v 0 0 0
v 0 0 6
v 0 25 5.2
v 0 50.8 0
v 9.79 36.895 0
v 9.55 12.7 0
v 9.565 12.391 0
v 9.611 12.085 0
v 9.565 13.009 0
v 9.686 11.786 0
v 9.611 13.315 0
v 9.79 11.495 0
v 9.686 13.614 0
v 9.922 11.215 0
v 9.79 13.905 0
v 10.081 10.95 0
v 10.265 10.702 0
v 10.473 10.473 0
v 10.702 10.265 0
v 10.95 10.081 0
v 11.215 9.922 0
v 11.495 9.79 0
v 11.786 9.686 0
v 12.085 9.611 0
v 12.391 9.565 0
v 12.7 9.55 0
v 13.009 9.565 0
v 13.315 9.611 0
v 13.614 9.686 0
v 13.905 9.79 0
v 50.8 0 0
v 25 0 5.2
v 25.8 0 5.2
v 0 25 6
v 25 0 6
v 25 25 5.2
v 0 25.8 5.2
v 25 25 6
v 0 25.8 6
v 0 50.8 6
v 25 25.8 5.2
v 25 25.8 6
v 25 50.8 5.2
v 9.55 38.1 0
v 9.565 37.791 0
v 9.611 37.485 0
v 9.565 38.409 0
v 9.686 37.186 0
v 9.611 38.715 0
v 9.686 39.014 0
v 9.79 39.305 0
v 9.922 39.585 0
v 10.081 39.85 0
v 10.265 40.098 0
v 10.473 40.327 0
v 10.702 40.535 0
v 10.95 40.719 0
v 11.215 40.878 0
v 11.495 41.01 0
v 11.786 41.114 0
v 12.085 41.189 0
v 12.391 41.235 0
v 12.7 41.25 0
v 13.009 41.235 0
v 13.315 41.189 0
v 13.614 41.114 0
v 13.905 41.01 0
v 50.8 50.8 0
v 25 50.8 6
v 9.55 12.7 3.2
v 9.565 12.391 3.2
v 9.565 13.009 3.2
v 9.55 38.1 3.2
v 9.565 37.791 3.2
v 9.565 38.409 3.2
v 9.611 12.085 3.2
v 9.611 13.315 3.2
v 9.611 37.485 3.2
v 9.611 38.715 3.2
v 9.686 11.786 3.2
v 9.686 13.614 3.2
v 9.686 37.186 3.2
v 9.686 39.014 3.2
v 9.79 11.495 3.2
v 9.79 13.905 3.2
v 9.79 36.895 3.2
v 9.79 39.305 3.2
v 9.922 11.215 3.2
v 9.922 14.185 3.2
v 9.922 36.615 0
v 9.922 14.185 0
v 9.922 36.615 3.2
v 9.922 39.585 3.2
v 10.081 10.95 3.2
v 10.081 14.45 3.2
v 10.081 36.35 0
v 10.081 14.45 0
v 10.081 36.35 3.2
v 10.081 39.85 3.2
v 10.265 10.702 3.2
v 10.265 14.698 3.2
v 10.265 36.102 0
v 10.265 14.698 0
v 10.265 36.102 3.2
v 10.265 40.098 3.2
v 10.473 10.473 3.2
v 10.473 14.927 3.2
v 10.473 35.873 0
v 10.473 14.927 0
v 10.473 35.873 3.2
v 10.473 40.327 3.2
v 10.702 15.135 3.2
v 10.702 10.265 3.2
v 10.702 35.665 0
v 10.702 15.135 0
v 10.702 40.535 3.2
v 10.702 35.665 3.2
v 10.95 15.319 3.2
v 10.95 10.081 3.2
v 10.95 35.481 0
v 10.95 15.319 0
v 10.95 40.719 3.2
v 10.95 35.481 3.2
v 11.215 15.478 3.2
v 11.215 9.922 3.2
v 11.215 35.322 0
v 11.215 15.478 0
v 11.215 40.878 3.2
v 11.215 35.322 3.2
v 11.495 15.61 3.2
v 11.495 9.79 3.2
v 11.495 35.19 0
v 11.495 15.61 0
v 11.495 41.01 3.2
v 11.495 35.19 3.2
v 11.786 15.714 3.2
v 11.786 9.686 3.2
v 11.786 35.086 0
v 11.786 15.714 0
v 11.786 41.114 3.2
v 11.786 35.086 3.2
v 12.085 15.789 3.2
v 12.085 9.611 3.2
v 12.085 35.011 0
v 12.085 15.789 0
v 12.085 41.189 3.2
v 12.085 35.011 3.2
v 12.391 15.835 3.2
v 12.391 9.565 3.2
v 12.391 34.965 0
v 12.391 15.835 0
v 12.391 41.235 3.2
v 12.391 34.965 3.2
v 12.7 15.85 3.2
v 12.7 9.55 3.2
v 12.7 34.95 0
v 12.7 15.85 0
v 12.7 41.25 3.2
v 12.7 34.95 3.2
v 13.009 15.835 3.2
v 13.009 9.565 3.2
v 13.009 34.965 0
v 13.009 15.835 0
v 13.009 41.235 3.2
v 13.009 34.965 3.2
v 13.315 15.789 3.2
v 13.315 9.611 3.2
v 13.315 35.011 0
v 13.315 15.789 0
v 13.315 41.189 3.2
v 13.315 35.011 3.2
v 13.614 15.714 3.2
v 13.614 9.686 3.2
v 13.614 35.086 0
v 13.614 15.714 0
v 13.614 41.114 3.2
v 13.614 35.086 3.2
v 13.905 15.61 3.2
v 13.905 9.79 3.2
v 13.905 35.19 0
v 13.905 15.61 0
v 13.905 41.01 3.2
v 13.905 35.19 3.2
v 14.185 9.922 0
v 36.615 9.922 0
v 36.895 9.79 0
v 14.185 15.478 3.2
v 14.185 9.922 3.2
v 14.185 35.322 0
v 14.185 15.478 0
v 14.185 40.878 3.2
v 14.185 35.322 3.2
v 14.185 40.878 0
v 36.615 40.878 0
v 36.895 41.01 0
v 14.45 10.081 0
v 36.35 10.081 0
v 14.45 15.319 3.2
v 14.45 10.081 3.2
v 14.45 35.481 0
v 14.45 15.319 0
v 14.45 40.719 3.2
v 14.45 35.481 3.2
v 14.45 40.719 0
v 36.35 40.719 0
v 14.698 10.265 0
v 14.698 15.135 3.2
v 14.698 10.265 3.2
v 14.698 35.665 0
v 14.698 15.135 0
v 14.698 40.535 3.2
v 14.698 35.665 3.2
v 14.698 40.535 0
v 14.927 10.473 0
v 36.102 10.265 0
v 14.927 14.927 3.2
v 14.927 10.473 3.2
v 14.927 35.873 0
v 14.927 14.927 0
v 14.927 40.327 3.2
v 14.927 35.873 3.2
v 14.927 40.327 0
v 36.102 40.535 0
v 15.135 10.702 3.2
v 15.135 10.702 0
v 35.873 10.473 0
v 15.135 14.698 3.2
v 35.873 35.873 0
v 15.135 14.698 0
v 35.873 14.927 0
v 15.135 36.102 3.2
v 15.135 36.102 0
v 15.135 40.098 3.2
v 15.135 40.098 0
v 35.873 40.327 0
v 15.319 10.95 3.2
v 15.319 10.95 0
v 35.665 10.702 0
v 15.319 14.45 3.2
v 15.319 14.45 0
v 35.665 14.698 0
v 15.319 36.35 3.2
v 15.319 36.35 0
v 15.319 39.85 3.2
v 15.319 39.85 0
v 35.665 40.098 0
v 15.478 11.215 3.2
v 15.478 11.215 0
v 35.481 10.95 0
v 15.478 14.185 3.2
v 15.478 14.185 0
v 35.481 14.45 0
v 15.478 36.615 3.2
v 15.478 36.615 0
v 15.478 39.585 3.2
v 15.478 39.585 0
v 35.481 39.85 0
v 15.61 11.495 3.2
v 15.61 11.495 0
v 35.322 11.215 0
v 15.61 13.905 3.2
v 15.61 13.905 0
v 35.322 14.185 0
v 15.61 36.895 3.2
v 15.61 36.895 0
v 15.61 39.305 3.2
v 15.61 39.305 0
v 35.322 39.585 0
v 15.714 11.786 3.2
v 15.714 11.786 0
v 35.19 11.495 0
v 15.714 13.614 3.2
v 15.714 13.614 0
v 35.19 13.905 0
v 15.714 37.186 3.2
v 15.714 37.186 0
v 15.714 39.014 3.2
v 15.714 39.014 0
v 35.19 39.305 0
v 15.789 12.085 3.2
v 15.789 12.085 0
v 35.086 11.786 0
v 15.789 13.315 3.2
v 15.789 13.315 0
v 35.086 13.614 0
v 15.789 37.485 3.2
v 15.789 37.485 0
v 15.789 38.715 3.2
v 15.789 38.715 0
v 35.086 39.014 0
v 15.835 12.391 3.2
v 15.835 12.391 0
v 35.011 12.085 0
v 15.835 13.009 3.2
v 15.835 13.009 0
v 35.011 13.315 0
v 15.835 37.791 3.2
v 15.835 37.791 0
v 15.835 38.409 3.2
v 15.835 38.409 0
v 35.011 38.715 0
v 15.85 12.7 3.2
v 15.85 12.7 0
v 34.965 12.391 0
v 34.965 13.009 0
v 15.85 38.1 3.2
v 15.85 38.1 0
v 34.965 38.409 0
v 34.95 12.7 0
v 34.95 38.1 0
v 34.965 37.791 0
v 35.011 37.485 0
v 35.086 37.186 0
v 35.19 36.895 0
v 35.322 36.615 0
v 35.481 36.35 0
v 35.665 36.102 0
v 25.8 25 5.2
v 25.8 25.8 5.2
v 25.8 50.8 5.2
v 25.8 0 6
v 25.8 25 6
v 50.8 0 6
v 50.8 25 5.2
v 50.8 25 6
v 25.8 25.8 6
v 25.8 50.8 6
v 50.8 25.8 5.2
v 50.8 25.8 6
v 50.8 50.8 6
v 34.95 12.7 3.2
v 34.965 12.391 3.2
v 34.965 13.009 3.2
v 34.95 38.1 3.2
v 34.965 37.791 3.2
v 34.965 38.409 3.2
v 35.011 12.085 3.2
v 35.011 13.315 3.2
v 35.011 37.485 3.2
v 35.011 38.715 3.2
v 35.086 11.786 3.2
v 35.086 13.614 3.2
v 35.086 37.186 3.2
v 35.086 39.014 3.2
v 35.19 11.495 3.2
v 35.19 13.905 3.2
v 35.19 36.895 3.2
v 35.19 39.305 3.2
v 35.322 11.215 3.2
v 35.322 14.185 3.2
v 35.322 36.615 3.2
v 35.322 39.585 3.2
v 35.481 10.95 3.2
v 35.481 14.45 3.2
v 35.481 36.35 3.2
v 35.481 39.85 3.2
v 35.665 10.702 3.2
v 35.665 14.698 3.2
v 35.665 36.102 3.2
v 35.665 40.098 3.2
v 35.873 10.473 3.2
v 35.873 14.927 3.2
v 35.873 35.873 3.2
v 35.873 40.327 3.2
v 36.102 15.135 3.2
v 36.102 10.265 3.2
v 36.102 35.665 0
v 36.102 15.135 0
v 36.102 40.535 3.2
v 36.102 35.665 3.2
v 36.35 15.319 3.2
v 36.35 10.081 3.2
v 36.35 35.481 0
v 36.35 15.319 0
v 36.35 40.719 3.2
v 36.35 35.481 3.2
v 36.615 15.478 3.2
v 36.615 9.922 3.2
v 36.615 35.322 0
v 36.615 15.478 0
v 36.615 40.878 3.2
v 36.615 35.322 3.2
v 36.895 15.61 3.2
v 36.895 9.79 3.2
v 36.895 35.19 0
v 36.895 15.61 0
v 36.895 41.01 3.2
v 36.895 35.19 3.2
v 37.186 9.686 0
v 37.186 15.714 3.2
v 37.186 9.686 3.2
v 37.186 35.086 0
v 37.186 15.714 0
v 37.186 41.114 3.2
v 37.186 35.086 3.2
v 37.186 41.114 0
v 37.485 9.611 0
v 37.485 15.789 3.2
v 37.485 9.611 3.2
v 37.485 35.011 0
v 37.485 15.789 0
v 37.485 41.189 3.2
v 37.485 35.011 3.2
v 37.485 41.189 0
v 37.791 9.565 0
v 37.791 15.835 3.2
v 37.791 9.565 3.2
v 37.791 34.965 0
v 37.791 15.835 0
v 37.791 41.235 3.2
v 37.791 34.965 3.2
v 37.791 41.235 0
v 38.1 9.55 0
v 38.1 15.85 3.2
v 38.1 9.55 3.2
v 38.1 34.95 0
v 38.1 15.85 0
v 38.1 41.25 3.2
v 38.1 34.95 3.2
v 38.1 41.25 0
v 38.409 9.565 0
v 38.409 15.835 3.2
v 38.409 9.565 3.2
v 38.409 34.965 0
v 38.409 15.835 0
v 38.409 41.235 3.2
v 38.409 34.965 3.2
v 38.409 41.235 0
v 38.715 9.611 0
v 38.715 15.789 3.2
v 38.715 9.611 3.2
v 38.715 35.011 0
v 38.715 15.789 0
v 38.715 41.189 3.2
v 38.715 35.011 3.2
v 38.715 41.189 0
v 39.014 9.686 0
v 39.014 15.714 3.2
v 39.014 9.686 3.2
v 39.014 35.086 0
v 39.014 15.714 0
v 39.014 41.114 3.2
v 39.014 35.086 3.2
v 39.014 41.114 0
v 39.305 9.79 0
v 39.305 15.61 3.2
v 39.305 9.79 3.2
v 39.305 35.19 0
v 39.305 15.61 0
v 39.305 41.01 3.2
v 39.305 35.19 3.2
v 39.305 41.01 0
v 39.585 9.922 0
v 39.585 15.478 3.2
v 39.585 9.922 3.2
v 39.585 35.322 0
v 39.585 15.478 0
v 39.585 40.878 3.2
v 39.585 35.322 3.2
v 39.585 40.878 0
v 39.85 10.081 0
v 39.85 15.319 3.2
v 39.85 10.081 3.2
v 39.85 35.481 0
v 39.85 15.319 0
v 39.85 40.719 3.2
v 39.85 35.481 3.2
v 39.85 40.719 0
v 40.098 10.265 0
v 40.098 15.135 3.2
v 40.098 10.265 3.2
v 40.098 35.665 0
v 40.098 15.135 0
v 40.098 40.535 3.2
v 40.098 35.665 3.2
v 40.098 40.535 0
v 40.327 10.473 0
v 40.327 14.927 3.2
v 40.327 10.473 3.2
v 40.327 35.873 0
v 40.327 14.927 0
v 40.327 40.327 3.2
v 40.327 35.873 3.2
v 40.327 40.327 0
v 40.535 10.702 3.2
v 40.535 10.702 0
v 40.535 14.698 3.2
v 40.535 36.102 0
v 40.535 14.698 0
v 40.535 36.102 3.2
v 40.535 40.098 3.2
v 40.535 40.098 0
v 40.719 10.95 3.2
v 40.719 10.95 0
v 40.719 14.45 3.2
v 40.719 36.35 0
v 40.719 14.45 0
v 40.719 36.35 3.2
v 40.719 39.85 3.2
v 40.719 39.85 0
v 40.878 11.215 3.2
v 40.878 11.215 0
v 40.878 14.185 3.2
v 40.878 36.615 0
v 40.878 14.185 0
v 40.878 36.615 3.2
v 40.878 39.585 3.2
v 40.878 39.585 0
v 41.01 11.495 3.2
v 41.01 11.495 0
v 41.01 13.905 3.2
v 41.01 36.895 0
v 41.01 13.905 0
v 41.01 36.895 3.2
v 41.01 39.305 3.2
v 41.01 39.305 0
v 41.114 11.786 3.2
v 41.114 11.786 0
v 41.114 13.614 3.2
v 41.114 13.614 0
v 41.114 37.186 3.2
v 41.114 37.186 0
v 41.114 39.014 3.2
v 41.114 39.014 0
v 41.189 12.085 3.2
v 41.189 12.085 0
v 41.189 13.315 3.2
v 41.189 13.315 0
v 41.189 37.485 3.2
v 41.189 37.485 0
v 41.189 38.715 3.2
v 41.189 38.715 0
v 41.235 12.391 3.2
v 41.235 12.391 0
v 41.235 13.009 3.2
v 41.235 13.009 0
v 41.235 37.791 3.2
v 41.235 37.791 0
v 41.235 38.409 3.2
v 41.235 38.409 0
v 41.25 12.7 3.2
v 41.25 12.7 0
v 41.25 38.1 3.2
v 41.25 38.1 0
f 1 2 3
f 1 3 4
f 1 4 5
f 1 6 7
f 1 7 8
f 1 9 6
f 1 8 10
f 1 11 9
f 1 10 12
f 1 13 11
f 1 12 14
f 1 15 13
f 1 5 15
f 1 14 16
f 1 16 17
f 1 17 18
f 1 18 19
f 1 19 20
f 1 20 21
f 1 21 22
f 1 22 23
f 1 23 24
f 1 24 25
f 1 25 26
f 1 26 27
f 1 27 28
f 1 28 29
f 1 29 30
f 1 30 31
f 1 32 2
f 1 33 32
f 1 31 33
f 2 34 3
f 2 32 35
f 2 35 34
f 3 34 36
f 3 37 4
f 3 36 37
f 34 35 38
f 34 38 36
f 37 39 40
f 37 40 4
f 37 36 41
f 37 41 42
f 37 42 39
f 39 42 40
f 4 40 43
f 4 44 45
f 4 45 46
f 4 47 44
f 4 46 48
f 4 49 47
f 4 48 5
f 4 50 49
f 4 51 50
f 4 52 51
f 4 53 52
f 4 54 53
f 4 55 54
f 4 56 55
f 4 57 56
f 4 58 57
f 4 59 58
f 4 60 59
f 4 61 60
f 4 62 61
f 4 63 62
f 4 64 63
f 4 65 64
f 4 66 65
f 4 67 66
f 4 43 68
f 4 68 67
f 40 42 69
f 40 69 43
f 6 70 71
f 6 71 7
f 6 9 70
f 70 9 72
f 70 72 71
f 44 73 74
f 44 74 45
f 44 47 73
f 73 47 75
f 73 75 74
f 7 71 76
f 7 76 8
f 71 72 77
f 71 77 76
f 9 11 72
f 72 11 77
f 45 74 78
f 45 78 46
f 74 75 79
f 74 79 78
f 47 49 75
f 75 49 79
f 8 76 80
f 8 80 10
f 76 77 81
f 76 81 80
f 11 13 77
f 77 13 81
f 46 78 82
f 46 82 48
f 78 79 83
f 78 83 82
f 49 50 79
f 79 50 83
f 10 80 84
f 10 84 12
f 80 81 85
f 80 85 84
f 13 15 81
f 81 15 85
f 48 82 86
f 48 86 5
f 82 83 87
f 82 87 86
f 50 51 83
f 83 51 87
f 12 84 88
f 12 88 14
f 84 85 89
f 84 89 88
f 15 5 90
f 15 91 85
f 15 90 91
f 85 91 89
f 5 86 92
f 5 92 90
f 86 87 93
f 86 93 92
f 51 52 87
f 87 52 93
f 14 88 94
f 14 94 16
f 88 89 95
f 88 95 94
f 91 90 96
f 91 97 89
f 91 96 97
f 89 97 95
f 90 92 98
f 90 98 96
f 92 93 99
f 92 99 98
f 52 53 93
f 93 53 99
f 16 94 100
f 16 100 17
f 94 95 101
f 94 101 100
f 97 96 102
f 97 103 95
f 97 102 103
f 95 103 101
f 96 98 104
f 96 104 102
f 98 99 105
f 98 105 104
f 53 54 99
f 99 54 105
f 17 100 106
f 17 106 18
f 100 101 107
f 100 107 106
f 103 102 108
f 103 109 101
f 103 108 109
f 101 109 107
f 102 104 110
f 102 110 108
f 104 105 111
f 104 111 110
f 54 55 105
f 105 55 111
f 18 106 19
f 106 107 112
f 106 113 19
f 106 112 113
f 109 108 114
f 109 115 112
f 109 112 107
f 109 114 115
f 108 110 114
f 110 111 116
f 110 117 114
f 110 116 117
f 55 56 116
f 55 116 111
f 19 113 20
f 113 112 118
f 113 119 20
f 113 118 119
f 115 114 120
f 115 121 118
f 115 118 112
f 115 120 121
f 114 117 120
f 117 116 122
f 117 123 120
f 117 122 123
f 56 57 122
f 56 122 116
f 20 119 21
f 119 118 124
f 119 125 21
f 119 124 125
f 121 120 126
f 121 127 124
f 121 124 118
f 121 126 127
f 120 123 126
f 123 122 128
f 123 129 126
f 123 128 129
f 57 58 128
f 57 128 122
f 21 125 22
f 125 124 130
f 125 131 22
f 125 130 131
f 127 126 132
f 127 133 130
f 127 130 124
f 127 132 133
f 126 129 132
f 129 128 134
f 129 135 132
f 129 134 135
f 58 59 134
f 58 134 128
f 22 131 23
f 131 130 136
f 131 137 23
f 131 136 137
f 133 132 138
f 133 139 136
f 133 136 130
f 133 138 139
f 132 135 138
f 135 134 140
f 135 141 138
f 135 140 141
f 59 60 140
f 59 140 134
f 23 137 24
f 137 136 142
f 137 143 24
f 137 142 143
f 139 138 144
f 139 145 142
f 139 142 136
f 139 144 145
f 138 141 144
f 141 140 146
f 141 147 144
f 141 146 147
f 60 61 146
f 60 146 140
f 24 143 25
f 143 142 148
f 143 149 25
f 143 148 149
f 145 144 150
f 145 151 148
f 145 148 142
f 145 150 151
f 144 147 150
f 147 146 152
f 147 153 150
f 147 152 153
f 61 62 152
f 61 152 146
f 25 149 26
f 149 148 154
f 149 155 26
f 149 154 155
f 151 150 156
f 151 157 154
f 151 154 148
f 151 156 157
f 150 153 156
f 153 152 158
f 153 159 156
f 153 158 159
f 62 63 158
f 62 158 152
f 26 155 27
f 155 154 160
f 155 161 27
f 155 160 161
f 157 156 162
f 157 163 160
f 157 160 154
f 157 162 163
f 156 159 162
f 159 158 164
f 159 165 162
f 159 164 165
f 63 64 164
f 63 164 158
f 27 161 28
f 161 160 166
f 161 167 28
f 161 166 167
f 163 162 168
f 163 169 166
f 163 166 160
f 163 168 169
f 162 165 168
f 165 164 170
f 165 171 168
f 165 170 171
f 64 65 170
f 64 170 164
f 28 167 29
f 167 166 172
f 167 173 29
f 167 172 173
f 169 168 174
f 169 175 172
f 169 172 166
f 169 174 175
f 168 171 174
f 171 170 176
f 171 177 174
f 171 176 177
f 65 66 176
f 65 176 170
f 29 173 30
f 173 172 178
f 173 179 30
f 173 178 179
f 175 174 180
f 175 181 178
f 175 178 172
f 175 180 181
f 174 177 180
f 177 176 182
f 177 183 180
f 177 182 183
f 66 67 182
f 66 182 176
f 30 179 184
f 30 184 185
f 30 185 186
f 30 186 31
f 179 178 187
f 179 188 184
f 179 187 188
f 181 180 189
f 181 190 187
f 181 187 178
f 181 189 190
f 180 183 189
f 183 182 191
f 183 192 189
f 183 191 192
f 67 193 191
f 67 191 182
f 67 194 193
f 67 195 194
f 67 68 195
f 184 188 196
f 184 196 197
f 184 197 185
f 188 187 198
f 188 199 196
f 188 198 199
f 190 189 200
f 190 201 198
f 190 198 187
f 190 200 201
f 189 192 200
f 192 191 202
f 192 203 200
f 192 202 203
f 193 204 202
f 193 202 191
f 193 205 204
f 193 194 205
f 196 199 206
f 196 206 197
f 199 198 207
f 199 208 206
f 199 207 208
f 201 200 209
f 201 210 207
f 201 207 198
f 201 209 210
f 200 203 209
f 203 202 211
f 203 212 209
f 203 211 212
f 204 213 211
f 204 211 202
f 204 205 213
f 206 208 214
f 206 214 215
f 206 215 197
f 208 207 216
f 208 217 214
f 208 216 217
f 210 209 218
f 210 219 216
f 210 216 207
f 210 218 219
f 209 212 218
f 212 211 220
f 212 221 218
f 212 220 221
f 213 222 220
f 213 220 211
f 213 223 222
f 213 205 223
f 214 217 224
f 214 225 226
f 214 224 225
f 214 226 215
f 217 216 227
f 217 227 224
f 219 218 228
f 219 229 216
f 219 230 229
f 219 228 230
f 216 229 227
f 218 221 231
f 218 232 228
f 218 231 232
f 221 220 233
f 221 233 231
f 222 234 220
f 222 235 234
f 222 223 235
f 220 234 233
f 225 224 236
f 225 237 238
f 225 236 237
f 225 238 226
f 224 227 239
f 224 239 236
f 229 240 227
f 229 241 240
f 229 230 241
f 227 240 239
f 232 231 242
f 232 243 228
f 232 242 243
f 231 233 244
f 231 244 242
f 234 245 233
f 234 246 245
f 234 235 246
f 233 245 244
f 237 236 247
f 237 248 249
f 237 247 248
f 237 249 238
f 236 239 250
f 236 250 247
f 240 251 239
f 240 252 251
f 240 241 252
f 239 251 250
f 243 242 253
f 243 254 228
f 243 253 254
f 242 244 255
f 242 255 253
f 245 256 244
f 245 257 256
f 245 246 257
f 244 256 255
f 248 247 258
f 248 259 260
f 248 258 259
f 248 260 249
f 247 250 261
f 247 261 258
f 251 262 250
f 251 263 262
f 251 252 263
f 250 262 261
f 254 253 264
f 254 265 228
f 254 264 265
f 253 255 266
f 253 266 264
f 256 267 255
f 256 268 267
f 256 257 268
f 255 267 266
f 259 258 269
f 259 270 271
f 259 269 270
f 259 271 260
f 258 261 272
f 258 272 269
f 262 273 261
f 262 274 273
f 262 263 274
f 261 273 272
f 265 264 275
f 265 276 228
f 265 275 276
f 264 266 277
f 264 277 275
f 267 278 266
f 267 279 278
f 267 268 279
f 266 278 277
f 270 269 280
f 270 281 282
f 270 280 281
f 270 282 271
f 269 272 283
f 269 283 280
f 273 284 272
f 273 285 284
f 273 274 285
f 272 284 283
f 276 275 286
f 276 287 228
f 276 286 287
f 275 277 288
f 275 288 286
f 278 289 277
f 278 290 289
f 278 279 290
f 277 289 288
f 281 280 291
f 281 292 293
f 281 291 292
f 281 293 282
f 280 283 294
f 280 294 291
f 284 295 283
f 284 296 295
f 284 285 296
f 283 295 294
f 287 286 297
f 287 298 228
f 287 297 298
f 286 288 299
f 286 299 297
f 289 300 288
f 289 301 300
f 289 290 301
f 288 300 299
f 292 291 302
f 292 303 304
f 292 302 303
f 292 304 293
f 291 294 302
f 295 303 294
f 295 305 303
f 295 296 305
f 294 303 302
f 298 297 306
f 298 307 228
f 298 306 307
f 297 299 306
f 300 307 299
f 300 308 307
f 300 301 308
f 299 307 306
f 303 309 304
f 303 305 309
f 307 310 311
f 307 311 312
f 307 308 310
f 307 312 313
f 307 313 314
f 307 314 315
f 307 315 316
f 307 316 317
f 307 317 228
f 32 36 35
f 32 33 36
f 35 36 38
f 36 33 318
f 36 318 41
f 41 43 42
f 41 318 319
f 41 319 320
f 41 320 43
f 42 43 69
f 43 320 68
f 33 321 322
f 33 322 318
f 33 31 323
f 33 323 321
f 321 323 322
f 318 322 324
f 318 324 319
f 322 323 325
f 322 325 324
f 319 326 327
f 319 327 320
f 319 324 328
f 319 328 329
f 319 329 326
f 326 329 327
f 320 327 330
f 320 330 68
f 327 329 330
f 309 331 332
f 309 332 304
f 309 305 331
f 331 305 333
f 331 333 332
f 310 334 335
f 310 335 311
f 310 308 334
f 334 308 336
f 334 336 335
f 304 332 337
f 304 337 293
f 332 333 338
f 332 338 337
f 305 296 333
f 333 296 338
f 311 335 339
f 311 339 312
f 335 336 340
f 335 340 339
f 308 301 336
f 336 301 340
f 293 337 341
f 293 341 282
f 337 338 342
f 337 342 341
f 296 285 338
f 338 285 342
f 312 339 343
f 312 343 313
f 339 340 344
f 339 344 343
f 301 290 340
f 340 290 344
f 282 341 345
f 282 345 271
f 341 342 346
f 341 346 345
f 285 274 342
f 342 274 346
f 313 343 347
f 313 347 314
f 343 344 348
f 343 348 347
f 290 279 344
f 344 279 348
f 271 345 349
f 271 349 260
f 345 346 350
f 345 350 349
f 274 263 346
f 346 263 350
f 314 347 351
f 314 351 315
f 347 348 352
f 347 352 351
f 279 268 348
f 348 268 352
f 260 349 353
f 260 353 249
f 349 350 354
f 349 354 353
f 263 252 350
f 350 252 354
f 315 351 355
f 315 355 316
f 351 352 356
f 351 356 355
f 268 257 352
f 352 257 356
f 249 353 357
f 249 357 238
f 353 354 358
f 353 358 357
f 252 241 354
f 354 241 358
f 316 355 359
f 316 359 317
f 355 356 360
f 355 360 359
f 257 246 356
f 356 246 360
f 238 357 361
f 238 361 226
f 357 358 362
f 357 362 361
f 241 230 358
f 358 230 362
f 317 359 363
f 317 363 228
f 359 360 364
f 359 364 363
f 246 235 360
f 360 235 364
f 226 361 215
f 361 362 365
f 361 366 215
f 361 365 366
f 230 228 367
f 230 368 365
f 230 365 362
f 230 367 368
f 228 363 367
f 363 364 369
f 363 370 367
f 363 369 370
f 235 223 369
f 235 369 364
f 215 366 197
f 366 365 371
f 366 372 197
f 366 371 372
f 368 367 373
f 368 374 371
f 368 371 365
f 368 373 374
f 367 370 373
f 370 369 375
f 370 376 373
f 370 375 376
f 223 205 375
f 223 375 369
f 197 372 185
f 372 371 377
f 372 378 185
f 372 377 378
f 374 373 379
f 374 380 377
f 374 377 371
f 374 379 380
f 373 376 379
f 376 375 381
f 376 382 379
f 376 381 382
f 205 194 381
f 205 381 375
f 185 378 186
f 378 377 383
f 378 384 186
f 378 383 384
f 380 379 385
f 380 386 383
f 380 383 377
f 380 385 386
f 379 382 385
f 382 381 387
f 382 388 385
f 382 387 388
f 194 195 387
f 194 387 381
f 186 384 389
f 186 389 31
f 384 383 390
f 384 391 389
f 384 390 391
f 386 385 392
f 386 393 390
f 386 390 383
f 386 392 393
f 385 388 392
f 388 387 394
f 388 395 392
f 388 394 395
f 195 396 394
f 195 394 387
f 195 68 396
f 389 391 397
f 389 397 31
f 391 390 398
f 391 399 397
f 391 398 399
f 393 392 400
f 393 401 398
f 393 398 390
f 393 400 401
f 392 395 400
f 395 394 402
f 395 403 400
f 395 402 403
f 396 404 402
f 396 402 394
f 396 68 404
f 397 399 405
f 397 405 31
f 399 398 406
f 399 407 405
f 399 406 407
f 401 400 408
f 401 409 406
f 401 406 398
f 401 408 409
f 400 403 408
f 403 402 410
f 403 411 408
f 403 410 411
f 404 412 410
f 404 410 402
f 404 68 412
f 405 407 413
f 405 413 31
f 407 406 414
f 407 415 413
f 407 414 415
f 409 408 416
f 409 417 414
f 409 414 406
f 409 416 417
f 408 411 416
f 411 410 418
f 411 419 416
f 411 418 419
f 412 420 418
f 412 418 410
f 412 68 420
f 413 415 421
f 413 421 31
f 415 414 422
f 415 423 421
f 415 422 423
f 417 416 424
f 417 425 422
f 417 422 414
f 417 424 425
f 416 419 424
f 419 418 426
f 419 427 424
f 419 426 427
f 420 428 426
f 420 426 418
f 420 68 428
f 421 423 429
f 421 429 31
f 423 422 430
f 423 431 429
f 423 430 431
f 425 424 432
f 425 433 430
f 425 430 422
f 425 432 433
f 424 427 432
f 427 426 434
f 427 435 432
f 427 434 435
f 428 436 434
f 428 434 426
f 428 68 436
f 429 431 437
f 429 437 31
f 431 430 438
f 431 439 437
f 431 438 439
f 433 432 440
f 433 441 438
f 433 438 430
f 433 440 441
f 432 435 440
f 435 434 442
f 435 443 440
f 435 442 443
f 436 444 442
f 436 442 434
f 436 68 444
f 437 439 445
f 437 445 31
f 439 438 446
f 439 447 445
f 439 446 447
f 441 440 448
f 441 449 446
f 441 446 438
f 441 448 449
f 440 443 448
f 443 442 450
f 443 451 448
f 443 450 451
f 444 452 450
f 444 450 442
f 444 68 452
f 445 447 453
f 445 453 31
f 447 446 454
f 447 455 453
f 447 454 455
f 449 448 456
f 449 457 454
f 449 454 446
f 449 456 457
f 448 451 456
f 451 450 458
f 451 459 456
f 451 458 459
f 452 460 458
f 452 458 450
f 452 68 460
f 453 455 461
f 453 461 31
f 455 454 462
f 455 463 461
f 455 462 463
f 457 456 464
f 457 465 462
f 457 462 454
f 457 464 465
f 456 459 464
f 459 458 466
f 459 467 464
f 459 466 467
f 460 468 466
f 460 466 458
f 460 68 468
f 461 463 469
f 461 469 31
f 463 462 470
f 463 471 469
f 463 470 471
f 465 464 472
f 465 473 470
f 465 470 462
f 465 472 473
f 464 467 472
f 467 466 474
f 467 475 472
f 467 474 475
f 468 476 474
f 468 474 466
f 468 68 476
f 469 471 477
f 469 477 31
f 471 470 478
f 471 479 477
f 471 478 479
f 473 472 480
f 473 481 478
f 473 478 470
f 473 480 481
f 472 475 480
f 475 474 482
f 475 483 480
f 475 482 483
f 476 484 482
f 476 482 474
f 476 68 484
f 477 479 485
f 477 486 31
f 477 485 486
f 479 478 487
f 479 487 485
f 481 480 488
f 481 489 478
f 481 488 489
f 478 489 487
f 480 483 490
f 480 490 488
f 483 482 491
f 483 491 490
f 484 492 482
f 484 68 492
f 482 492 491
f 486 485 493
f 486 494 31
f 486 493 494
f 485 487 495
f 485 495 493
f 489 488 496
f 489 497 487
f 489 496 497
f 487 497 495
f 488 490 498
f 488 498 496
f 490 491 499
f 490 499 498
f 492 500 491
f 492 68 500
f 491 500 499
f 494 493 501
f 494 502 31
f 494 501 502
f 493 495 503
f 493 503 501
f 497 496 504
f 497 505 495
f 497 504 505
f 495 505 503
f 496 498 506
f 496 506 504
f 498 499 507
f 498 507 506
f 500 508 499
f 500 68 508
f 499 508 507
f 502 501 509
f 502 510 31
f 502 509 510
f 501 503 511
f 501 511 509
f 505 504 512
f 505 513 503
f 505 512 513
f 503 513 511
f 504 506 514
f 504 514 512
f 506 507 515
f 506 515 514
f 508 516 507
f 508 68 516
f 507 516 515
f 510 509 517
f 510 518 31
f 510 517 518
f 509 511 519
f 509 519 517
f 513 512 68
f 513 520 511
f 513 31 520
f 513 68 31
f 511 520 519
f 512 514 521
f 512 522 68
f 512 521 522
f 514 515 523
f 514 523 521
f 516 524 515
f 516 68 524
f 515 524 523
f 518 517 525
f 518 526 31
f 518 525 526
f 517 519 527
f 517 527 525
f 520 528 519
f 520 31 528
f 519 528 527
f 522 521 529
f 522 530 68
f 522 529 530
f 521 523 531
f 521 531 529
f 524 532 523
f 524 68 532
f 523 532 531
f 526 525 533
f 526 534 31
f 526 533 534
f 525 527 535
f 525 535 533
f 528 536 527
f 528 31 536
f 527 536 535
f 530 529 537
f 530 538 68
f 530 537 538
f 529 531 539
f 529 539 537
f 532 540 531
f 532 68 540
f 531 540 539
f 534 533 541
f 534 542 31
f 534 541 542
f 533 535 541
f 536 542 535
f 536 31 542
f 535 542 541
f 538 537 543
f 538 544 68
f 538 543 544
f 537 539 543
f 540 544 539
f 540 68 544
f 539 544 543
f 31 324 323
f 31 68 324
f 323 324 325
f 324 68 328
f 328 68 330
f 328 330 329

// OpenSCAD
// file: ../../.claude/skills/mesa3d-print/lib/mesa3d.scad
// mesa3d.scad – constantes e módulos comuns. Use: include <../../.claude/skills/mesa3d-print/lib/mesa3d.scad>
// Mantenha estes números iguais ao printer-profile.json (não calibrados até o gauge ser impresso).
GRADE      = 25.4;   // 1 quadrado de RPG (5 pés)
FOLGA_JUSTA = 0.15;  // por lado
FOLGA_DESL  = 0.25;
PAREDE_MIN  = 1.2;
IMA_D = 6.3;  IMA_H = 3.2;   // furo para ímã 6x3
$fn = 64;

// Furo para ímã, aberto por baixo (cole o ímã depois de imprimir).
module furo_ima(d = IMA_D, h = IMA_H) { translate([0, 0, -0.01]) cylinder(d = d, h = h + 0.01); }

// Texto gravado (profundidade 0.6) no topo de uma face em z = topo.
module gravar(txt, tam = 5, topo = 0) {
  translate([0, 0, topo - 0.6]) linear_extrude(0.61)
    text(txt, size = tam, halign = "center", valign = "center", font = "Liberation Sans:style=Bold");
}

// Tile de chão: nx × ny quadrados, com sulcos da grade e (opcional) ímãs nos cantos de cada quadrado.
module tile_chao(nx = 2, ny = 2, altura = 6, sulco = 0.8, imas = false) {
  difference() {
    cube([nx * GRADE, ny * GRADE, altura]);
    for (i = [1:nx - 1]) translate([i * GRADE - sulco / 2, -1, altura - sulco]) cube([sulco, ny * GRADE + 2, sulco + 1]);
    for (j = [1:ny - 1]) translate([-1, j * GRADE - sulco / 2, altura - sulco]) cube([nx * GRADE + 2, sulco, sulco + 1]);
    if (imas) for (i = [0:nx - 1], j = [0:ny - 1]) translate([(i + 0.5) * GRADE, (j + 0.5) * GRADE, 0]) furo_ima();
  }
}
// main file
// Tile de chão 2x2 (50.8 mm) com furos para ímãs 6x3 – teste do sistema de encaixe.
include <../../.claude/skills/mesa3d-print/lib/mesa3d.scad>
tile_chao(2, 2, altura = 6, imas = true);
